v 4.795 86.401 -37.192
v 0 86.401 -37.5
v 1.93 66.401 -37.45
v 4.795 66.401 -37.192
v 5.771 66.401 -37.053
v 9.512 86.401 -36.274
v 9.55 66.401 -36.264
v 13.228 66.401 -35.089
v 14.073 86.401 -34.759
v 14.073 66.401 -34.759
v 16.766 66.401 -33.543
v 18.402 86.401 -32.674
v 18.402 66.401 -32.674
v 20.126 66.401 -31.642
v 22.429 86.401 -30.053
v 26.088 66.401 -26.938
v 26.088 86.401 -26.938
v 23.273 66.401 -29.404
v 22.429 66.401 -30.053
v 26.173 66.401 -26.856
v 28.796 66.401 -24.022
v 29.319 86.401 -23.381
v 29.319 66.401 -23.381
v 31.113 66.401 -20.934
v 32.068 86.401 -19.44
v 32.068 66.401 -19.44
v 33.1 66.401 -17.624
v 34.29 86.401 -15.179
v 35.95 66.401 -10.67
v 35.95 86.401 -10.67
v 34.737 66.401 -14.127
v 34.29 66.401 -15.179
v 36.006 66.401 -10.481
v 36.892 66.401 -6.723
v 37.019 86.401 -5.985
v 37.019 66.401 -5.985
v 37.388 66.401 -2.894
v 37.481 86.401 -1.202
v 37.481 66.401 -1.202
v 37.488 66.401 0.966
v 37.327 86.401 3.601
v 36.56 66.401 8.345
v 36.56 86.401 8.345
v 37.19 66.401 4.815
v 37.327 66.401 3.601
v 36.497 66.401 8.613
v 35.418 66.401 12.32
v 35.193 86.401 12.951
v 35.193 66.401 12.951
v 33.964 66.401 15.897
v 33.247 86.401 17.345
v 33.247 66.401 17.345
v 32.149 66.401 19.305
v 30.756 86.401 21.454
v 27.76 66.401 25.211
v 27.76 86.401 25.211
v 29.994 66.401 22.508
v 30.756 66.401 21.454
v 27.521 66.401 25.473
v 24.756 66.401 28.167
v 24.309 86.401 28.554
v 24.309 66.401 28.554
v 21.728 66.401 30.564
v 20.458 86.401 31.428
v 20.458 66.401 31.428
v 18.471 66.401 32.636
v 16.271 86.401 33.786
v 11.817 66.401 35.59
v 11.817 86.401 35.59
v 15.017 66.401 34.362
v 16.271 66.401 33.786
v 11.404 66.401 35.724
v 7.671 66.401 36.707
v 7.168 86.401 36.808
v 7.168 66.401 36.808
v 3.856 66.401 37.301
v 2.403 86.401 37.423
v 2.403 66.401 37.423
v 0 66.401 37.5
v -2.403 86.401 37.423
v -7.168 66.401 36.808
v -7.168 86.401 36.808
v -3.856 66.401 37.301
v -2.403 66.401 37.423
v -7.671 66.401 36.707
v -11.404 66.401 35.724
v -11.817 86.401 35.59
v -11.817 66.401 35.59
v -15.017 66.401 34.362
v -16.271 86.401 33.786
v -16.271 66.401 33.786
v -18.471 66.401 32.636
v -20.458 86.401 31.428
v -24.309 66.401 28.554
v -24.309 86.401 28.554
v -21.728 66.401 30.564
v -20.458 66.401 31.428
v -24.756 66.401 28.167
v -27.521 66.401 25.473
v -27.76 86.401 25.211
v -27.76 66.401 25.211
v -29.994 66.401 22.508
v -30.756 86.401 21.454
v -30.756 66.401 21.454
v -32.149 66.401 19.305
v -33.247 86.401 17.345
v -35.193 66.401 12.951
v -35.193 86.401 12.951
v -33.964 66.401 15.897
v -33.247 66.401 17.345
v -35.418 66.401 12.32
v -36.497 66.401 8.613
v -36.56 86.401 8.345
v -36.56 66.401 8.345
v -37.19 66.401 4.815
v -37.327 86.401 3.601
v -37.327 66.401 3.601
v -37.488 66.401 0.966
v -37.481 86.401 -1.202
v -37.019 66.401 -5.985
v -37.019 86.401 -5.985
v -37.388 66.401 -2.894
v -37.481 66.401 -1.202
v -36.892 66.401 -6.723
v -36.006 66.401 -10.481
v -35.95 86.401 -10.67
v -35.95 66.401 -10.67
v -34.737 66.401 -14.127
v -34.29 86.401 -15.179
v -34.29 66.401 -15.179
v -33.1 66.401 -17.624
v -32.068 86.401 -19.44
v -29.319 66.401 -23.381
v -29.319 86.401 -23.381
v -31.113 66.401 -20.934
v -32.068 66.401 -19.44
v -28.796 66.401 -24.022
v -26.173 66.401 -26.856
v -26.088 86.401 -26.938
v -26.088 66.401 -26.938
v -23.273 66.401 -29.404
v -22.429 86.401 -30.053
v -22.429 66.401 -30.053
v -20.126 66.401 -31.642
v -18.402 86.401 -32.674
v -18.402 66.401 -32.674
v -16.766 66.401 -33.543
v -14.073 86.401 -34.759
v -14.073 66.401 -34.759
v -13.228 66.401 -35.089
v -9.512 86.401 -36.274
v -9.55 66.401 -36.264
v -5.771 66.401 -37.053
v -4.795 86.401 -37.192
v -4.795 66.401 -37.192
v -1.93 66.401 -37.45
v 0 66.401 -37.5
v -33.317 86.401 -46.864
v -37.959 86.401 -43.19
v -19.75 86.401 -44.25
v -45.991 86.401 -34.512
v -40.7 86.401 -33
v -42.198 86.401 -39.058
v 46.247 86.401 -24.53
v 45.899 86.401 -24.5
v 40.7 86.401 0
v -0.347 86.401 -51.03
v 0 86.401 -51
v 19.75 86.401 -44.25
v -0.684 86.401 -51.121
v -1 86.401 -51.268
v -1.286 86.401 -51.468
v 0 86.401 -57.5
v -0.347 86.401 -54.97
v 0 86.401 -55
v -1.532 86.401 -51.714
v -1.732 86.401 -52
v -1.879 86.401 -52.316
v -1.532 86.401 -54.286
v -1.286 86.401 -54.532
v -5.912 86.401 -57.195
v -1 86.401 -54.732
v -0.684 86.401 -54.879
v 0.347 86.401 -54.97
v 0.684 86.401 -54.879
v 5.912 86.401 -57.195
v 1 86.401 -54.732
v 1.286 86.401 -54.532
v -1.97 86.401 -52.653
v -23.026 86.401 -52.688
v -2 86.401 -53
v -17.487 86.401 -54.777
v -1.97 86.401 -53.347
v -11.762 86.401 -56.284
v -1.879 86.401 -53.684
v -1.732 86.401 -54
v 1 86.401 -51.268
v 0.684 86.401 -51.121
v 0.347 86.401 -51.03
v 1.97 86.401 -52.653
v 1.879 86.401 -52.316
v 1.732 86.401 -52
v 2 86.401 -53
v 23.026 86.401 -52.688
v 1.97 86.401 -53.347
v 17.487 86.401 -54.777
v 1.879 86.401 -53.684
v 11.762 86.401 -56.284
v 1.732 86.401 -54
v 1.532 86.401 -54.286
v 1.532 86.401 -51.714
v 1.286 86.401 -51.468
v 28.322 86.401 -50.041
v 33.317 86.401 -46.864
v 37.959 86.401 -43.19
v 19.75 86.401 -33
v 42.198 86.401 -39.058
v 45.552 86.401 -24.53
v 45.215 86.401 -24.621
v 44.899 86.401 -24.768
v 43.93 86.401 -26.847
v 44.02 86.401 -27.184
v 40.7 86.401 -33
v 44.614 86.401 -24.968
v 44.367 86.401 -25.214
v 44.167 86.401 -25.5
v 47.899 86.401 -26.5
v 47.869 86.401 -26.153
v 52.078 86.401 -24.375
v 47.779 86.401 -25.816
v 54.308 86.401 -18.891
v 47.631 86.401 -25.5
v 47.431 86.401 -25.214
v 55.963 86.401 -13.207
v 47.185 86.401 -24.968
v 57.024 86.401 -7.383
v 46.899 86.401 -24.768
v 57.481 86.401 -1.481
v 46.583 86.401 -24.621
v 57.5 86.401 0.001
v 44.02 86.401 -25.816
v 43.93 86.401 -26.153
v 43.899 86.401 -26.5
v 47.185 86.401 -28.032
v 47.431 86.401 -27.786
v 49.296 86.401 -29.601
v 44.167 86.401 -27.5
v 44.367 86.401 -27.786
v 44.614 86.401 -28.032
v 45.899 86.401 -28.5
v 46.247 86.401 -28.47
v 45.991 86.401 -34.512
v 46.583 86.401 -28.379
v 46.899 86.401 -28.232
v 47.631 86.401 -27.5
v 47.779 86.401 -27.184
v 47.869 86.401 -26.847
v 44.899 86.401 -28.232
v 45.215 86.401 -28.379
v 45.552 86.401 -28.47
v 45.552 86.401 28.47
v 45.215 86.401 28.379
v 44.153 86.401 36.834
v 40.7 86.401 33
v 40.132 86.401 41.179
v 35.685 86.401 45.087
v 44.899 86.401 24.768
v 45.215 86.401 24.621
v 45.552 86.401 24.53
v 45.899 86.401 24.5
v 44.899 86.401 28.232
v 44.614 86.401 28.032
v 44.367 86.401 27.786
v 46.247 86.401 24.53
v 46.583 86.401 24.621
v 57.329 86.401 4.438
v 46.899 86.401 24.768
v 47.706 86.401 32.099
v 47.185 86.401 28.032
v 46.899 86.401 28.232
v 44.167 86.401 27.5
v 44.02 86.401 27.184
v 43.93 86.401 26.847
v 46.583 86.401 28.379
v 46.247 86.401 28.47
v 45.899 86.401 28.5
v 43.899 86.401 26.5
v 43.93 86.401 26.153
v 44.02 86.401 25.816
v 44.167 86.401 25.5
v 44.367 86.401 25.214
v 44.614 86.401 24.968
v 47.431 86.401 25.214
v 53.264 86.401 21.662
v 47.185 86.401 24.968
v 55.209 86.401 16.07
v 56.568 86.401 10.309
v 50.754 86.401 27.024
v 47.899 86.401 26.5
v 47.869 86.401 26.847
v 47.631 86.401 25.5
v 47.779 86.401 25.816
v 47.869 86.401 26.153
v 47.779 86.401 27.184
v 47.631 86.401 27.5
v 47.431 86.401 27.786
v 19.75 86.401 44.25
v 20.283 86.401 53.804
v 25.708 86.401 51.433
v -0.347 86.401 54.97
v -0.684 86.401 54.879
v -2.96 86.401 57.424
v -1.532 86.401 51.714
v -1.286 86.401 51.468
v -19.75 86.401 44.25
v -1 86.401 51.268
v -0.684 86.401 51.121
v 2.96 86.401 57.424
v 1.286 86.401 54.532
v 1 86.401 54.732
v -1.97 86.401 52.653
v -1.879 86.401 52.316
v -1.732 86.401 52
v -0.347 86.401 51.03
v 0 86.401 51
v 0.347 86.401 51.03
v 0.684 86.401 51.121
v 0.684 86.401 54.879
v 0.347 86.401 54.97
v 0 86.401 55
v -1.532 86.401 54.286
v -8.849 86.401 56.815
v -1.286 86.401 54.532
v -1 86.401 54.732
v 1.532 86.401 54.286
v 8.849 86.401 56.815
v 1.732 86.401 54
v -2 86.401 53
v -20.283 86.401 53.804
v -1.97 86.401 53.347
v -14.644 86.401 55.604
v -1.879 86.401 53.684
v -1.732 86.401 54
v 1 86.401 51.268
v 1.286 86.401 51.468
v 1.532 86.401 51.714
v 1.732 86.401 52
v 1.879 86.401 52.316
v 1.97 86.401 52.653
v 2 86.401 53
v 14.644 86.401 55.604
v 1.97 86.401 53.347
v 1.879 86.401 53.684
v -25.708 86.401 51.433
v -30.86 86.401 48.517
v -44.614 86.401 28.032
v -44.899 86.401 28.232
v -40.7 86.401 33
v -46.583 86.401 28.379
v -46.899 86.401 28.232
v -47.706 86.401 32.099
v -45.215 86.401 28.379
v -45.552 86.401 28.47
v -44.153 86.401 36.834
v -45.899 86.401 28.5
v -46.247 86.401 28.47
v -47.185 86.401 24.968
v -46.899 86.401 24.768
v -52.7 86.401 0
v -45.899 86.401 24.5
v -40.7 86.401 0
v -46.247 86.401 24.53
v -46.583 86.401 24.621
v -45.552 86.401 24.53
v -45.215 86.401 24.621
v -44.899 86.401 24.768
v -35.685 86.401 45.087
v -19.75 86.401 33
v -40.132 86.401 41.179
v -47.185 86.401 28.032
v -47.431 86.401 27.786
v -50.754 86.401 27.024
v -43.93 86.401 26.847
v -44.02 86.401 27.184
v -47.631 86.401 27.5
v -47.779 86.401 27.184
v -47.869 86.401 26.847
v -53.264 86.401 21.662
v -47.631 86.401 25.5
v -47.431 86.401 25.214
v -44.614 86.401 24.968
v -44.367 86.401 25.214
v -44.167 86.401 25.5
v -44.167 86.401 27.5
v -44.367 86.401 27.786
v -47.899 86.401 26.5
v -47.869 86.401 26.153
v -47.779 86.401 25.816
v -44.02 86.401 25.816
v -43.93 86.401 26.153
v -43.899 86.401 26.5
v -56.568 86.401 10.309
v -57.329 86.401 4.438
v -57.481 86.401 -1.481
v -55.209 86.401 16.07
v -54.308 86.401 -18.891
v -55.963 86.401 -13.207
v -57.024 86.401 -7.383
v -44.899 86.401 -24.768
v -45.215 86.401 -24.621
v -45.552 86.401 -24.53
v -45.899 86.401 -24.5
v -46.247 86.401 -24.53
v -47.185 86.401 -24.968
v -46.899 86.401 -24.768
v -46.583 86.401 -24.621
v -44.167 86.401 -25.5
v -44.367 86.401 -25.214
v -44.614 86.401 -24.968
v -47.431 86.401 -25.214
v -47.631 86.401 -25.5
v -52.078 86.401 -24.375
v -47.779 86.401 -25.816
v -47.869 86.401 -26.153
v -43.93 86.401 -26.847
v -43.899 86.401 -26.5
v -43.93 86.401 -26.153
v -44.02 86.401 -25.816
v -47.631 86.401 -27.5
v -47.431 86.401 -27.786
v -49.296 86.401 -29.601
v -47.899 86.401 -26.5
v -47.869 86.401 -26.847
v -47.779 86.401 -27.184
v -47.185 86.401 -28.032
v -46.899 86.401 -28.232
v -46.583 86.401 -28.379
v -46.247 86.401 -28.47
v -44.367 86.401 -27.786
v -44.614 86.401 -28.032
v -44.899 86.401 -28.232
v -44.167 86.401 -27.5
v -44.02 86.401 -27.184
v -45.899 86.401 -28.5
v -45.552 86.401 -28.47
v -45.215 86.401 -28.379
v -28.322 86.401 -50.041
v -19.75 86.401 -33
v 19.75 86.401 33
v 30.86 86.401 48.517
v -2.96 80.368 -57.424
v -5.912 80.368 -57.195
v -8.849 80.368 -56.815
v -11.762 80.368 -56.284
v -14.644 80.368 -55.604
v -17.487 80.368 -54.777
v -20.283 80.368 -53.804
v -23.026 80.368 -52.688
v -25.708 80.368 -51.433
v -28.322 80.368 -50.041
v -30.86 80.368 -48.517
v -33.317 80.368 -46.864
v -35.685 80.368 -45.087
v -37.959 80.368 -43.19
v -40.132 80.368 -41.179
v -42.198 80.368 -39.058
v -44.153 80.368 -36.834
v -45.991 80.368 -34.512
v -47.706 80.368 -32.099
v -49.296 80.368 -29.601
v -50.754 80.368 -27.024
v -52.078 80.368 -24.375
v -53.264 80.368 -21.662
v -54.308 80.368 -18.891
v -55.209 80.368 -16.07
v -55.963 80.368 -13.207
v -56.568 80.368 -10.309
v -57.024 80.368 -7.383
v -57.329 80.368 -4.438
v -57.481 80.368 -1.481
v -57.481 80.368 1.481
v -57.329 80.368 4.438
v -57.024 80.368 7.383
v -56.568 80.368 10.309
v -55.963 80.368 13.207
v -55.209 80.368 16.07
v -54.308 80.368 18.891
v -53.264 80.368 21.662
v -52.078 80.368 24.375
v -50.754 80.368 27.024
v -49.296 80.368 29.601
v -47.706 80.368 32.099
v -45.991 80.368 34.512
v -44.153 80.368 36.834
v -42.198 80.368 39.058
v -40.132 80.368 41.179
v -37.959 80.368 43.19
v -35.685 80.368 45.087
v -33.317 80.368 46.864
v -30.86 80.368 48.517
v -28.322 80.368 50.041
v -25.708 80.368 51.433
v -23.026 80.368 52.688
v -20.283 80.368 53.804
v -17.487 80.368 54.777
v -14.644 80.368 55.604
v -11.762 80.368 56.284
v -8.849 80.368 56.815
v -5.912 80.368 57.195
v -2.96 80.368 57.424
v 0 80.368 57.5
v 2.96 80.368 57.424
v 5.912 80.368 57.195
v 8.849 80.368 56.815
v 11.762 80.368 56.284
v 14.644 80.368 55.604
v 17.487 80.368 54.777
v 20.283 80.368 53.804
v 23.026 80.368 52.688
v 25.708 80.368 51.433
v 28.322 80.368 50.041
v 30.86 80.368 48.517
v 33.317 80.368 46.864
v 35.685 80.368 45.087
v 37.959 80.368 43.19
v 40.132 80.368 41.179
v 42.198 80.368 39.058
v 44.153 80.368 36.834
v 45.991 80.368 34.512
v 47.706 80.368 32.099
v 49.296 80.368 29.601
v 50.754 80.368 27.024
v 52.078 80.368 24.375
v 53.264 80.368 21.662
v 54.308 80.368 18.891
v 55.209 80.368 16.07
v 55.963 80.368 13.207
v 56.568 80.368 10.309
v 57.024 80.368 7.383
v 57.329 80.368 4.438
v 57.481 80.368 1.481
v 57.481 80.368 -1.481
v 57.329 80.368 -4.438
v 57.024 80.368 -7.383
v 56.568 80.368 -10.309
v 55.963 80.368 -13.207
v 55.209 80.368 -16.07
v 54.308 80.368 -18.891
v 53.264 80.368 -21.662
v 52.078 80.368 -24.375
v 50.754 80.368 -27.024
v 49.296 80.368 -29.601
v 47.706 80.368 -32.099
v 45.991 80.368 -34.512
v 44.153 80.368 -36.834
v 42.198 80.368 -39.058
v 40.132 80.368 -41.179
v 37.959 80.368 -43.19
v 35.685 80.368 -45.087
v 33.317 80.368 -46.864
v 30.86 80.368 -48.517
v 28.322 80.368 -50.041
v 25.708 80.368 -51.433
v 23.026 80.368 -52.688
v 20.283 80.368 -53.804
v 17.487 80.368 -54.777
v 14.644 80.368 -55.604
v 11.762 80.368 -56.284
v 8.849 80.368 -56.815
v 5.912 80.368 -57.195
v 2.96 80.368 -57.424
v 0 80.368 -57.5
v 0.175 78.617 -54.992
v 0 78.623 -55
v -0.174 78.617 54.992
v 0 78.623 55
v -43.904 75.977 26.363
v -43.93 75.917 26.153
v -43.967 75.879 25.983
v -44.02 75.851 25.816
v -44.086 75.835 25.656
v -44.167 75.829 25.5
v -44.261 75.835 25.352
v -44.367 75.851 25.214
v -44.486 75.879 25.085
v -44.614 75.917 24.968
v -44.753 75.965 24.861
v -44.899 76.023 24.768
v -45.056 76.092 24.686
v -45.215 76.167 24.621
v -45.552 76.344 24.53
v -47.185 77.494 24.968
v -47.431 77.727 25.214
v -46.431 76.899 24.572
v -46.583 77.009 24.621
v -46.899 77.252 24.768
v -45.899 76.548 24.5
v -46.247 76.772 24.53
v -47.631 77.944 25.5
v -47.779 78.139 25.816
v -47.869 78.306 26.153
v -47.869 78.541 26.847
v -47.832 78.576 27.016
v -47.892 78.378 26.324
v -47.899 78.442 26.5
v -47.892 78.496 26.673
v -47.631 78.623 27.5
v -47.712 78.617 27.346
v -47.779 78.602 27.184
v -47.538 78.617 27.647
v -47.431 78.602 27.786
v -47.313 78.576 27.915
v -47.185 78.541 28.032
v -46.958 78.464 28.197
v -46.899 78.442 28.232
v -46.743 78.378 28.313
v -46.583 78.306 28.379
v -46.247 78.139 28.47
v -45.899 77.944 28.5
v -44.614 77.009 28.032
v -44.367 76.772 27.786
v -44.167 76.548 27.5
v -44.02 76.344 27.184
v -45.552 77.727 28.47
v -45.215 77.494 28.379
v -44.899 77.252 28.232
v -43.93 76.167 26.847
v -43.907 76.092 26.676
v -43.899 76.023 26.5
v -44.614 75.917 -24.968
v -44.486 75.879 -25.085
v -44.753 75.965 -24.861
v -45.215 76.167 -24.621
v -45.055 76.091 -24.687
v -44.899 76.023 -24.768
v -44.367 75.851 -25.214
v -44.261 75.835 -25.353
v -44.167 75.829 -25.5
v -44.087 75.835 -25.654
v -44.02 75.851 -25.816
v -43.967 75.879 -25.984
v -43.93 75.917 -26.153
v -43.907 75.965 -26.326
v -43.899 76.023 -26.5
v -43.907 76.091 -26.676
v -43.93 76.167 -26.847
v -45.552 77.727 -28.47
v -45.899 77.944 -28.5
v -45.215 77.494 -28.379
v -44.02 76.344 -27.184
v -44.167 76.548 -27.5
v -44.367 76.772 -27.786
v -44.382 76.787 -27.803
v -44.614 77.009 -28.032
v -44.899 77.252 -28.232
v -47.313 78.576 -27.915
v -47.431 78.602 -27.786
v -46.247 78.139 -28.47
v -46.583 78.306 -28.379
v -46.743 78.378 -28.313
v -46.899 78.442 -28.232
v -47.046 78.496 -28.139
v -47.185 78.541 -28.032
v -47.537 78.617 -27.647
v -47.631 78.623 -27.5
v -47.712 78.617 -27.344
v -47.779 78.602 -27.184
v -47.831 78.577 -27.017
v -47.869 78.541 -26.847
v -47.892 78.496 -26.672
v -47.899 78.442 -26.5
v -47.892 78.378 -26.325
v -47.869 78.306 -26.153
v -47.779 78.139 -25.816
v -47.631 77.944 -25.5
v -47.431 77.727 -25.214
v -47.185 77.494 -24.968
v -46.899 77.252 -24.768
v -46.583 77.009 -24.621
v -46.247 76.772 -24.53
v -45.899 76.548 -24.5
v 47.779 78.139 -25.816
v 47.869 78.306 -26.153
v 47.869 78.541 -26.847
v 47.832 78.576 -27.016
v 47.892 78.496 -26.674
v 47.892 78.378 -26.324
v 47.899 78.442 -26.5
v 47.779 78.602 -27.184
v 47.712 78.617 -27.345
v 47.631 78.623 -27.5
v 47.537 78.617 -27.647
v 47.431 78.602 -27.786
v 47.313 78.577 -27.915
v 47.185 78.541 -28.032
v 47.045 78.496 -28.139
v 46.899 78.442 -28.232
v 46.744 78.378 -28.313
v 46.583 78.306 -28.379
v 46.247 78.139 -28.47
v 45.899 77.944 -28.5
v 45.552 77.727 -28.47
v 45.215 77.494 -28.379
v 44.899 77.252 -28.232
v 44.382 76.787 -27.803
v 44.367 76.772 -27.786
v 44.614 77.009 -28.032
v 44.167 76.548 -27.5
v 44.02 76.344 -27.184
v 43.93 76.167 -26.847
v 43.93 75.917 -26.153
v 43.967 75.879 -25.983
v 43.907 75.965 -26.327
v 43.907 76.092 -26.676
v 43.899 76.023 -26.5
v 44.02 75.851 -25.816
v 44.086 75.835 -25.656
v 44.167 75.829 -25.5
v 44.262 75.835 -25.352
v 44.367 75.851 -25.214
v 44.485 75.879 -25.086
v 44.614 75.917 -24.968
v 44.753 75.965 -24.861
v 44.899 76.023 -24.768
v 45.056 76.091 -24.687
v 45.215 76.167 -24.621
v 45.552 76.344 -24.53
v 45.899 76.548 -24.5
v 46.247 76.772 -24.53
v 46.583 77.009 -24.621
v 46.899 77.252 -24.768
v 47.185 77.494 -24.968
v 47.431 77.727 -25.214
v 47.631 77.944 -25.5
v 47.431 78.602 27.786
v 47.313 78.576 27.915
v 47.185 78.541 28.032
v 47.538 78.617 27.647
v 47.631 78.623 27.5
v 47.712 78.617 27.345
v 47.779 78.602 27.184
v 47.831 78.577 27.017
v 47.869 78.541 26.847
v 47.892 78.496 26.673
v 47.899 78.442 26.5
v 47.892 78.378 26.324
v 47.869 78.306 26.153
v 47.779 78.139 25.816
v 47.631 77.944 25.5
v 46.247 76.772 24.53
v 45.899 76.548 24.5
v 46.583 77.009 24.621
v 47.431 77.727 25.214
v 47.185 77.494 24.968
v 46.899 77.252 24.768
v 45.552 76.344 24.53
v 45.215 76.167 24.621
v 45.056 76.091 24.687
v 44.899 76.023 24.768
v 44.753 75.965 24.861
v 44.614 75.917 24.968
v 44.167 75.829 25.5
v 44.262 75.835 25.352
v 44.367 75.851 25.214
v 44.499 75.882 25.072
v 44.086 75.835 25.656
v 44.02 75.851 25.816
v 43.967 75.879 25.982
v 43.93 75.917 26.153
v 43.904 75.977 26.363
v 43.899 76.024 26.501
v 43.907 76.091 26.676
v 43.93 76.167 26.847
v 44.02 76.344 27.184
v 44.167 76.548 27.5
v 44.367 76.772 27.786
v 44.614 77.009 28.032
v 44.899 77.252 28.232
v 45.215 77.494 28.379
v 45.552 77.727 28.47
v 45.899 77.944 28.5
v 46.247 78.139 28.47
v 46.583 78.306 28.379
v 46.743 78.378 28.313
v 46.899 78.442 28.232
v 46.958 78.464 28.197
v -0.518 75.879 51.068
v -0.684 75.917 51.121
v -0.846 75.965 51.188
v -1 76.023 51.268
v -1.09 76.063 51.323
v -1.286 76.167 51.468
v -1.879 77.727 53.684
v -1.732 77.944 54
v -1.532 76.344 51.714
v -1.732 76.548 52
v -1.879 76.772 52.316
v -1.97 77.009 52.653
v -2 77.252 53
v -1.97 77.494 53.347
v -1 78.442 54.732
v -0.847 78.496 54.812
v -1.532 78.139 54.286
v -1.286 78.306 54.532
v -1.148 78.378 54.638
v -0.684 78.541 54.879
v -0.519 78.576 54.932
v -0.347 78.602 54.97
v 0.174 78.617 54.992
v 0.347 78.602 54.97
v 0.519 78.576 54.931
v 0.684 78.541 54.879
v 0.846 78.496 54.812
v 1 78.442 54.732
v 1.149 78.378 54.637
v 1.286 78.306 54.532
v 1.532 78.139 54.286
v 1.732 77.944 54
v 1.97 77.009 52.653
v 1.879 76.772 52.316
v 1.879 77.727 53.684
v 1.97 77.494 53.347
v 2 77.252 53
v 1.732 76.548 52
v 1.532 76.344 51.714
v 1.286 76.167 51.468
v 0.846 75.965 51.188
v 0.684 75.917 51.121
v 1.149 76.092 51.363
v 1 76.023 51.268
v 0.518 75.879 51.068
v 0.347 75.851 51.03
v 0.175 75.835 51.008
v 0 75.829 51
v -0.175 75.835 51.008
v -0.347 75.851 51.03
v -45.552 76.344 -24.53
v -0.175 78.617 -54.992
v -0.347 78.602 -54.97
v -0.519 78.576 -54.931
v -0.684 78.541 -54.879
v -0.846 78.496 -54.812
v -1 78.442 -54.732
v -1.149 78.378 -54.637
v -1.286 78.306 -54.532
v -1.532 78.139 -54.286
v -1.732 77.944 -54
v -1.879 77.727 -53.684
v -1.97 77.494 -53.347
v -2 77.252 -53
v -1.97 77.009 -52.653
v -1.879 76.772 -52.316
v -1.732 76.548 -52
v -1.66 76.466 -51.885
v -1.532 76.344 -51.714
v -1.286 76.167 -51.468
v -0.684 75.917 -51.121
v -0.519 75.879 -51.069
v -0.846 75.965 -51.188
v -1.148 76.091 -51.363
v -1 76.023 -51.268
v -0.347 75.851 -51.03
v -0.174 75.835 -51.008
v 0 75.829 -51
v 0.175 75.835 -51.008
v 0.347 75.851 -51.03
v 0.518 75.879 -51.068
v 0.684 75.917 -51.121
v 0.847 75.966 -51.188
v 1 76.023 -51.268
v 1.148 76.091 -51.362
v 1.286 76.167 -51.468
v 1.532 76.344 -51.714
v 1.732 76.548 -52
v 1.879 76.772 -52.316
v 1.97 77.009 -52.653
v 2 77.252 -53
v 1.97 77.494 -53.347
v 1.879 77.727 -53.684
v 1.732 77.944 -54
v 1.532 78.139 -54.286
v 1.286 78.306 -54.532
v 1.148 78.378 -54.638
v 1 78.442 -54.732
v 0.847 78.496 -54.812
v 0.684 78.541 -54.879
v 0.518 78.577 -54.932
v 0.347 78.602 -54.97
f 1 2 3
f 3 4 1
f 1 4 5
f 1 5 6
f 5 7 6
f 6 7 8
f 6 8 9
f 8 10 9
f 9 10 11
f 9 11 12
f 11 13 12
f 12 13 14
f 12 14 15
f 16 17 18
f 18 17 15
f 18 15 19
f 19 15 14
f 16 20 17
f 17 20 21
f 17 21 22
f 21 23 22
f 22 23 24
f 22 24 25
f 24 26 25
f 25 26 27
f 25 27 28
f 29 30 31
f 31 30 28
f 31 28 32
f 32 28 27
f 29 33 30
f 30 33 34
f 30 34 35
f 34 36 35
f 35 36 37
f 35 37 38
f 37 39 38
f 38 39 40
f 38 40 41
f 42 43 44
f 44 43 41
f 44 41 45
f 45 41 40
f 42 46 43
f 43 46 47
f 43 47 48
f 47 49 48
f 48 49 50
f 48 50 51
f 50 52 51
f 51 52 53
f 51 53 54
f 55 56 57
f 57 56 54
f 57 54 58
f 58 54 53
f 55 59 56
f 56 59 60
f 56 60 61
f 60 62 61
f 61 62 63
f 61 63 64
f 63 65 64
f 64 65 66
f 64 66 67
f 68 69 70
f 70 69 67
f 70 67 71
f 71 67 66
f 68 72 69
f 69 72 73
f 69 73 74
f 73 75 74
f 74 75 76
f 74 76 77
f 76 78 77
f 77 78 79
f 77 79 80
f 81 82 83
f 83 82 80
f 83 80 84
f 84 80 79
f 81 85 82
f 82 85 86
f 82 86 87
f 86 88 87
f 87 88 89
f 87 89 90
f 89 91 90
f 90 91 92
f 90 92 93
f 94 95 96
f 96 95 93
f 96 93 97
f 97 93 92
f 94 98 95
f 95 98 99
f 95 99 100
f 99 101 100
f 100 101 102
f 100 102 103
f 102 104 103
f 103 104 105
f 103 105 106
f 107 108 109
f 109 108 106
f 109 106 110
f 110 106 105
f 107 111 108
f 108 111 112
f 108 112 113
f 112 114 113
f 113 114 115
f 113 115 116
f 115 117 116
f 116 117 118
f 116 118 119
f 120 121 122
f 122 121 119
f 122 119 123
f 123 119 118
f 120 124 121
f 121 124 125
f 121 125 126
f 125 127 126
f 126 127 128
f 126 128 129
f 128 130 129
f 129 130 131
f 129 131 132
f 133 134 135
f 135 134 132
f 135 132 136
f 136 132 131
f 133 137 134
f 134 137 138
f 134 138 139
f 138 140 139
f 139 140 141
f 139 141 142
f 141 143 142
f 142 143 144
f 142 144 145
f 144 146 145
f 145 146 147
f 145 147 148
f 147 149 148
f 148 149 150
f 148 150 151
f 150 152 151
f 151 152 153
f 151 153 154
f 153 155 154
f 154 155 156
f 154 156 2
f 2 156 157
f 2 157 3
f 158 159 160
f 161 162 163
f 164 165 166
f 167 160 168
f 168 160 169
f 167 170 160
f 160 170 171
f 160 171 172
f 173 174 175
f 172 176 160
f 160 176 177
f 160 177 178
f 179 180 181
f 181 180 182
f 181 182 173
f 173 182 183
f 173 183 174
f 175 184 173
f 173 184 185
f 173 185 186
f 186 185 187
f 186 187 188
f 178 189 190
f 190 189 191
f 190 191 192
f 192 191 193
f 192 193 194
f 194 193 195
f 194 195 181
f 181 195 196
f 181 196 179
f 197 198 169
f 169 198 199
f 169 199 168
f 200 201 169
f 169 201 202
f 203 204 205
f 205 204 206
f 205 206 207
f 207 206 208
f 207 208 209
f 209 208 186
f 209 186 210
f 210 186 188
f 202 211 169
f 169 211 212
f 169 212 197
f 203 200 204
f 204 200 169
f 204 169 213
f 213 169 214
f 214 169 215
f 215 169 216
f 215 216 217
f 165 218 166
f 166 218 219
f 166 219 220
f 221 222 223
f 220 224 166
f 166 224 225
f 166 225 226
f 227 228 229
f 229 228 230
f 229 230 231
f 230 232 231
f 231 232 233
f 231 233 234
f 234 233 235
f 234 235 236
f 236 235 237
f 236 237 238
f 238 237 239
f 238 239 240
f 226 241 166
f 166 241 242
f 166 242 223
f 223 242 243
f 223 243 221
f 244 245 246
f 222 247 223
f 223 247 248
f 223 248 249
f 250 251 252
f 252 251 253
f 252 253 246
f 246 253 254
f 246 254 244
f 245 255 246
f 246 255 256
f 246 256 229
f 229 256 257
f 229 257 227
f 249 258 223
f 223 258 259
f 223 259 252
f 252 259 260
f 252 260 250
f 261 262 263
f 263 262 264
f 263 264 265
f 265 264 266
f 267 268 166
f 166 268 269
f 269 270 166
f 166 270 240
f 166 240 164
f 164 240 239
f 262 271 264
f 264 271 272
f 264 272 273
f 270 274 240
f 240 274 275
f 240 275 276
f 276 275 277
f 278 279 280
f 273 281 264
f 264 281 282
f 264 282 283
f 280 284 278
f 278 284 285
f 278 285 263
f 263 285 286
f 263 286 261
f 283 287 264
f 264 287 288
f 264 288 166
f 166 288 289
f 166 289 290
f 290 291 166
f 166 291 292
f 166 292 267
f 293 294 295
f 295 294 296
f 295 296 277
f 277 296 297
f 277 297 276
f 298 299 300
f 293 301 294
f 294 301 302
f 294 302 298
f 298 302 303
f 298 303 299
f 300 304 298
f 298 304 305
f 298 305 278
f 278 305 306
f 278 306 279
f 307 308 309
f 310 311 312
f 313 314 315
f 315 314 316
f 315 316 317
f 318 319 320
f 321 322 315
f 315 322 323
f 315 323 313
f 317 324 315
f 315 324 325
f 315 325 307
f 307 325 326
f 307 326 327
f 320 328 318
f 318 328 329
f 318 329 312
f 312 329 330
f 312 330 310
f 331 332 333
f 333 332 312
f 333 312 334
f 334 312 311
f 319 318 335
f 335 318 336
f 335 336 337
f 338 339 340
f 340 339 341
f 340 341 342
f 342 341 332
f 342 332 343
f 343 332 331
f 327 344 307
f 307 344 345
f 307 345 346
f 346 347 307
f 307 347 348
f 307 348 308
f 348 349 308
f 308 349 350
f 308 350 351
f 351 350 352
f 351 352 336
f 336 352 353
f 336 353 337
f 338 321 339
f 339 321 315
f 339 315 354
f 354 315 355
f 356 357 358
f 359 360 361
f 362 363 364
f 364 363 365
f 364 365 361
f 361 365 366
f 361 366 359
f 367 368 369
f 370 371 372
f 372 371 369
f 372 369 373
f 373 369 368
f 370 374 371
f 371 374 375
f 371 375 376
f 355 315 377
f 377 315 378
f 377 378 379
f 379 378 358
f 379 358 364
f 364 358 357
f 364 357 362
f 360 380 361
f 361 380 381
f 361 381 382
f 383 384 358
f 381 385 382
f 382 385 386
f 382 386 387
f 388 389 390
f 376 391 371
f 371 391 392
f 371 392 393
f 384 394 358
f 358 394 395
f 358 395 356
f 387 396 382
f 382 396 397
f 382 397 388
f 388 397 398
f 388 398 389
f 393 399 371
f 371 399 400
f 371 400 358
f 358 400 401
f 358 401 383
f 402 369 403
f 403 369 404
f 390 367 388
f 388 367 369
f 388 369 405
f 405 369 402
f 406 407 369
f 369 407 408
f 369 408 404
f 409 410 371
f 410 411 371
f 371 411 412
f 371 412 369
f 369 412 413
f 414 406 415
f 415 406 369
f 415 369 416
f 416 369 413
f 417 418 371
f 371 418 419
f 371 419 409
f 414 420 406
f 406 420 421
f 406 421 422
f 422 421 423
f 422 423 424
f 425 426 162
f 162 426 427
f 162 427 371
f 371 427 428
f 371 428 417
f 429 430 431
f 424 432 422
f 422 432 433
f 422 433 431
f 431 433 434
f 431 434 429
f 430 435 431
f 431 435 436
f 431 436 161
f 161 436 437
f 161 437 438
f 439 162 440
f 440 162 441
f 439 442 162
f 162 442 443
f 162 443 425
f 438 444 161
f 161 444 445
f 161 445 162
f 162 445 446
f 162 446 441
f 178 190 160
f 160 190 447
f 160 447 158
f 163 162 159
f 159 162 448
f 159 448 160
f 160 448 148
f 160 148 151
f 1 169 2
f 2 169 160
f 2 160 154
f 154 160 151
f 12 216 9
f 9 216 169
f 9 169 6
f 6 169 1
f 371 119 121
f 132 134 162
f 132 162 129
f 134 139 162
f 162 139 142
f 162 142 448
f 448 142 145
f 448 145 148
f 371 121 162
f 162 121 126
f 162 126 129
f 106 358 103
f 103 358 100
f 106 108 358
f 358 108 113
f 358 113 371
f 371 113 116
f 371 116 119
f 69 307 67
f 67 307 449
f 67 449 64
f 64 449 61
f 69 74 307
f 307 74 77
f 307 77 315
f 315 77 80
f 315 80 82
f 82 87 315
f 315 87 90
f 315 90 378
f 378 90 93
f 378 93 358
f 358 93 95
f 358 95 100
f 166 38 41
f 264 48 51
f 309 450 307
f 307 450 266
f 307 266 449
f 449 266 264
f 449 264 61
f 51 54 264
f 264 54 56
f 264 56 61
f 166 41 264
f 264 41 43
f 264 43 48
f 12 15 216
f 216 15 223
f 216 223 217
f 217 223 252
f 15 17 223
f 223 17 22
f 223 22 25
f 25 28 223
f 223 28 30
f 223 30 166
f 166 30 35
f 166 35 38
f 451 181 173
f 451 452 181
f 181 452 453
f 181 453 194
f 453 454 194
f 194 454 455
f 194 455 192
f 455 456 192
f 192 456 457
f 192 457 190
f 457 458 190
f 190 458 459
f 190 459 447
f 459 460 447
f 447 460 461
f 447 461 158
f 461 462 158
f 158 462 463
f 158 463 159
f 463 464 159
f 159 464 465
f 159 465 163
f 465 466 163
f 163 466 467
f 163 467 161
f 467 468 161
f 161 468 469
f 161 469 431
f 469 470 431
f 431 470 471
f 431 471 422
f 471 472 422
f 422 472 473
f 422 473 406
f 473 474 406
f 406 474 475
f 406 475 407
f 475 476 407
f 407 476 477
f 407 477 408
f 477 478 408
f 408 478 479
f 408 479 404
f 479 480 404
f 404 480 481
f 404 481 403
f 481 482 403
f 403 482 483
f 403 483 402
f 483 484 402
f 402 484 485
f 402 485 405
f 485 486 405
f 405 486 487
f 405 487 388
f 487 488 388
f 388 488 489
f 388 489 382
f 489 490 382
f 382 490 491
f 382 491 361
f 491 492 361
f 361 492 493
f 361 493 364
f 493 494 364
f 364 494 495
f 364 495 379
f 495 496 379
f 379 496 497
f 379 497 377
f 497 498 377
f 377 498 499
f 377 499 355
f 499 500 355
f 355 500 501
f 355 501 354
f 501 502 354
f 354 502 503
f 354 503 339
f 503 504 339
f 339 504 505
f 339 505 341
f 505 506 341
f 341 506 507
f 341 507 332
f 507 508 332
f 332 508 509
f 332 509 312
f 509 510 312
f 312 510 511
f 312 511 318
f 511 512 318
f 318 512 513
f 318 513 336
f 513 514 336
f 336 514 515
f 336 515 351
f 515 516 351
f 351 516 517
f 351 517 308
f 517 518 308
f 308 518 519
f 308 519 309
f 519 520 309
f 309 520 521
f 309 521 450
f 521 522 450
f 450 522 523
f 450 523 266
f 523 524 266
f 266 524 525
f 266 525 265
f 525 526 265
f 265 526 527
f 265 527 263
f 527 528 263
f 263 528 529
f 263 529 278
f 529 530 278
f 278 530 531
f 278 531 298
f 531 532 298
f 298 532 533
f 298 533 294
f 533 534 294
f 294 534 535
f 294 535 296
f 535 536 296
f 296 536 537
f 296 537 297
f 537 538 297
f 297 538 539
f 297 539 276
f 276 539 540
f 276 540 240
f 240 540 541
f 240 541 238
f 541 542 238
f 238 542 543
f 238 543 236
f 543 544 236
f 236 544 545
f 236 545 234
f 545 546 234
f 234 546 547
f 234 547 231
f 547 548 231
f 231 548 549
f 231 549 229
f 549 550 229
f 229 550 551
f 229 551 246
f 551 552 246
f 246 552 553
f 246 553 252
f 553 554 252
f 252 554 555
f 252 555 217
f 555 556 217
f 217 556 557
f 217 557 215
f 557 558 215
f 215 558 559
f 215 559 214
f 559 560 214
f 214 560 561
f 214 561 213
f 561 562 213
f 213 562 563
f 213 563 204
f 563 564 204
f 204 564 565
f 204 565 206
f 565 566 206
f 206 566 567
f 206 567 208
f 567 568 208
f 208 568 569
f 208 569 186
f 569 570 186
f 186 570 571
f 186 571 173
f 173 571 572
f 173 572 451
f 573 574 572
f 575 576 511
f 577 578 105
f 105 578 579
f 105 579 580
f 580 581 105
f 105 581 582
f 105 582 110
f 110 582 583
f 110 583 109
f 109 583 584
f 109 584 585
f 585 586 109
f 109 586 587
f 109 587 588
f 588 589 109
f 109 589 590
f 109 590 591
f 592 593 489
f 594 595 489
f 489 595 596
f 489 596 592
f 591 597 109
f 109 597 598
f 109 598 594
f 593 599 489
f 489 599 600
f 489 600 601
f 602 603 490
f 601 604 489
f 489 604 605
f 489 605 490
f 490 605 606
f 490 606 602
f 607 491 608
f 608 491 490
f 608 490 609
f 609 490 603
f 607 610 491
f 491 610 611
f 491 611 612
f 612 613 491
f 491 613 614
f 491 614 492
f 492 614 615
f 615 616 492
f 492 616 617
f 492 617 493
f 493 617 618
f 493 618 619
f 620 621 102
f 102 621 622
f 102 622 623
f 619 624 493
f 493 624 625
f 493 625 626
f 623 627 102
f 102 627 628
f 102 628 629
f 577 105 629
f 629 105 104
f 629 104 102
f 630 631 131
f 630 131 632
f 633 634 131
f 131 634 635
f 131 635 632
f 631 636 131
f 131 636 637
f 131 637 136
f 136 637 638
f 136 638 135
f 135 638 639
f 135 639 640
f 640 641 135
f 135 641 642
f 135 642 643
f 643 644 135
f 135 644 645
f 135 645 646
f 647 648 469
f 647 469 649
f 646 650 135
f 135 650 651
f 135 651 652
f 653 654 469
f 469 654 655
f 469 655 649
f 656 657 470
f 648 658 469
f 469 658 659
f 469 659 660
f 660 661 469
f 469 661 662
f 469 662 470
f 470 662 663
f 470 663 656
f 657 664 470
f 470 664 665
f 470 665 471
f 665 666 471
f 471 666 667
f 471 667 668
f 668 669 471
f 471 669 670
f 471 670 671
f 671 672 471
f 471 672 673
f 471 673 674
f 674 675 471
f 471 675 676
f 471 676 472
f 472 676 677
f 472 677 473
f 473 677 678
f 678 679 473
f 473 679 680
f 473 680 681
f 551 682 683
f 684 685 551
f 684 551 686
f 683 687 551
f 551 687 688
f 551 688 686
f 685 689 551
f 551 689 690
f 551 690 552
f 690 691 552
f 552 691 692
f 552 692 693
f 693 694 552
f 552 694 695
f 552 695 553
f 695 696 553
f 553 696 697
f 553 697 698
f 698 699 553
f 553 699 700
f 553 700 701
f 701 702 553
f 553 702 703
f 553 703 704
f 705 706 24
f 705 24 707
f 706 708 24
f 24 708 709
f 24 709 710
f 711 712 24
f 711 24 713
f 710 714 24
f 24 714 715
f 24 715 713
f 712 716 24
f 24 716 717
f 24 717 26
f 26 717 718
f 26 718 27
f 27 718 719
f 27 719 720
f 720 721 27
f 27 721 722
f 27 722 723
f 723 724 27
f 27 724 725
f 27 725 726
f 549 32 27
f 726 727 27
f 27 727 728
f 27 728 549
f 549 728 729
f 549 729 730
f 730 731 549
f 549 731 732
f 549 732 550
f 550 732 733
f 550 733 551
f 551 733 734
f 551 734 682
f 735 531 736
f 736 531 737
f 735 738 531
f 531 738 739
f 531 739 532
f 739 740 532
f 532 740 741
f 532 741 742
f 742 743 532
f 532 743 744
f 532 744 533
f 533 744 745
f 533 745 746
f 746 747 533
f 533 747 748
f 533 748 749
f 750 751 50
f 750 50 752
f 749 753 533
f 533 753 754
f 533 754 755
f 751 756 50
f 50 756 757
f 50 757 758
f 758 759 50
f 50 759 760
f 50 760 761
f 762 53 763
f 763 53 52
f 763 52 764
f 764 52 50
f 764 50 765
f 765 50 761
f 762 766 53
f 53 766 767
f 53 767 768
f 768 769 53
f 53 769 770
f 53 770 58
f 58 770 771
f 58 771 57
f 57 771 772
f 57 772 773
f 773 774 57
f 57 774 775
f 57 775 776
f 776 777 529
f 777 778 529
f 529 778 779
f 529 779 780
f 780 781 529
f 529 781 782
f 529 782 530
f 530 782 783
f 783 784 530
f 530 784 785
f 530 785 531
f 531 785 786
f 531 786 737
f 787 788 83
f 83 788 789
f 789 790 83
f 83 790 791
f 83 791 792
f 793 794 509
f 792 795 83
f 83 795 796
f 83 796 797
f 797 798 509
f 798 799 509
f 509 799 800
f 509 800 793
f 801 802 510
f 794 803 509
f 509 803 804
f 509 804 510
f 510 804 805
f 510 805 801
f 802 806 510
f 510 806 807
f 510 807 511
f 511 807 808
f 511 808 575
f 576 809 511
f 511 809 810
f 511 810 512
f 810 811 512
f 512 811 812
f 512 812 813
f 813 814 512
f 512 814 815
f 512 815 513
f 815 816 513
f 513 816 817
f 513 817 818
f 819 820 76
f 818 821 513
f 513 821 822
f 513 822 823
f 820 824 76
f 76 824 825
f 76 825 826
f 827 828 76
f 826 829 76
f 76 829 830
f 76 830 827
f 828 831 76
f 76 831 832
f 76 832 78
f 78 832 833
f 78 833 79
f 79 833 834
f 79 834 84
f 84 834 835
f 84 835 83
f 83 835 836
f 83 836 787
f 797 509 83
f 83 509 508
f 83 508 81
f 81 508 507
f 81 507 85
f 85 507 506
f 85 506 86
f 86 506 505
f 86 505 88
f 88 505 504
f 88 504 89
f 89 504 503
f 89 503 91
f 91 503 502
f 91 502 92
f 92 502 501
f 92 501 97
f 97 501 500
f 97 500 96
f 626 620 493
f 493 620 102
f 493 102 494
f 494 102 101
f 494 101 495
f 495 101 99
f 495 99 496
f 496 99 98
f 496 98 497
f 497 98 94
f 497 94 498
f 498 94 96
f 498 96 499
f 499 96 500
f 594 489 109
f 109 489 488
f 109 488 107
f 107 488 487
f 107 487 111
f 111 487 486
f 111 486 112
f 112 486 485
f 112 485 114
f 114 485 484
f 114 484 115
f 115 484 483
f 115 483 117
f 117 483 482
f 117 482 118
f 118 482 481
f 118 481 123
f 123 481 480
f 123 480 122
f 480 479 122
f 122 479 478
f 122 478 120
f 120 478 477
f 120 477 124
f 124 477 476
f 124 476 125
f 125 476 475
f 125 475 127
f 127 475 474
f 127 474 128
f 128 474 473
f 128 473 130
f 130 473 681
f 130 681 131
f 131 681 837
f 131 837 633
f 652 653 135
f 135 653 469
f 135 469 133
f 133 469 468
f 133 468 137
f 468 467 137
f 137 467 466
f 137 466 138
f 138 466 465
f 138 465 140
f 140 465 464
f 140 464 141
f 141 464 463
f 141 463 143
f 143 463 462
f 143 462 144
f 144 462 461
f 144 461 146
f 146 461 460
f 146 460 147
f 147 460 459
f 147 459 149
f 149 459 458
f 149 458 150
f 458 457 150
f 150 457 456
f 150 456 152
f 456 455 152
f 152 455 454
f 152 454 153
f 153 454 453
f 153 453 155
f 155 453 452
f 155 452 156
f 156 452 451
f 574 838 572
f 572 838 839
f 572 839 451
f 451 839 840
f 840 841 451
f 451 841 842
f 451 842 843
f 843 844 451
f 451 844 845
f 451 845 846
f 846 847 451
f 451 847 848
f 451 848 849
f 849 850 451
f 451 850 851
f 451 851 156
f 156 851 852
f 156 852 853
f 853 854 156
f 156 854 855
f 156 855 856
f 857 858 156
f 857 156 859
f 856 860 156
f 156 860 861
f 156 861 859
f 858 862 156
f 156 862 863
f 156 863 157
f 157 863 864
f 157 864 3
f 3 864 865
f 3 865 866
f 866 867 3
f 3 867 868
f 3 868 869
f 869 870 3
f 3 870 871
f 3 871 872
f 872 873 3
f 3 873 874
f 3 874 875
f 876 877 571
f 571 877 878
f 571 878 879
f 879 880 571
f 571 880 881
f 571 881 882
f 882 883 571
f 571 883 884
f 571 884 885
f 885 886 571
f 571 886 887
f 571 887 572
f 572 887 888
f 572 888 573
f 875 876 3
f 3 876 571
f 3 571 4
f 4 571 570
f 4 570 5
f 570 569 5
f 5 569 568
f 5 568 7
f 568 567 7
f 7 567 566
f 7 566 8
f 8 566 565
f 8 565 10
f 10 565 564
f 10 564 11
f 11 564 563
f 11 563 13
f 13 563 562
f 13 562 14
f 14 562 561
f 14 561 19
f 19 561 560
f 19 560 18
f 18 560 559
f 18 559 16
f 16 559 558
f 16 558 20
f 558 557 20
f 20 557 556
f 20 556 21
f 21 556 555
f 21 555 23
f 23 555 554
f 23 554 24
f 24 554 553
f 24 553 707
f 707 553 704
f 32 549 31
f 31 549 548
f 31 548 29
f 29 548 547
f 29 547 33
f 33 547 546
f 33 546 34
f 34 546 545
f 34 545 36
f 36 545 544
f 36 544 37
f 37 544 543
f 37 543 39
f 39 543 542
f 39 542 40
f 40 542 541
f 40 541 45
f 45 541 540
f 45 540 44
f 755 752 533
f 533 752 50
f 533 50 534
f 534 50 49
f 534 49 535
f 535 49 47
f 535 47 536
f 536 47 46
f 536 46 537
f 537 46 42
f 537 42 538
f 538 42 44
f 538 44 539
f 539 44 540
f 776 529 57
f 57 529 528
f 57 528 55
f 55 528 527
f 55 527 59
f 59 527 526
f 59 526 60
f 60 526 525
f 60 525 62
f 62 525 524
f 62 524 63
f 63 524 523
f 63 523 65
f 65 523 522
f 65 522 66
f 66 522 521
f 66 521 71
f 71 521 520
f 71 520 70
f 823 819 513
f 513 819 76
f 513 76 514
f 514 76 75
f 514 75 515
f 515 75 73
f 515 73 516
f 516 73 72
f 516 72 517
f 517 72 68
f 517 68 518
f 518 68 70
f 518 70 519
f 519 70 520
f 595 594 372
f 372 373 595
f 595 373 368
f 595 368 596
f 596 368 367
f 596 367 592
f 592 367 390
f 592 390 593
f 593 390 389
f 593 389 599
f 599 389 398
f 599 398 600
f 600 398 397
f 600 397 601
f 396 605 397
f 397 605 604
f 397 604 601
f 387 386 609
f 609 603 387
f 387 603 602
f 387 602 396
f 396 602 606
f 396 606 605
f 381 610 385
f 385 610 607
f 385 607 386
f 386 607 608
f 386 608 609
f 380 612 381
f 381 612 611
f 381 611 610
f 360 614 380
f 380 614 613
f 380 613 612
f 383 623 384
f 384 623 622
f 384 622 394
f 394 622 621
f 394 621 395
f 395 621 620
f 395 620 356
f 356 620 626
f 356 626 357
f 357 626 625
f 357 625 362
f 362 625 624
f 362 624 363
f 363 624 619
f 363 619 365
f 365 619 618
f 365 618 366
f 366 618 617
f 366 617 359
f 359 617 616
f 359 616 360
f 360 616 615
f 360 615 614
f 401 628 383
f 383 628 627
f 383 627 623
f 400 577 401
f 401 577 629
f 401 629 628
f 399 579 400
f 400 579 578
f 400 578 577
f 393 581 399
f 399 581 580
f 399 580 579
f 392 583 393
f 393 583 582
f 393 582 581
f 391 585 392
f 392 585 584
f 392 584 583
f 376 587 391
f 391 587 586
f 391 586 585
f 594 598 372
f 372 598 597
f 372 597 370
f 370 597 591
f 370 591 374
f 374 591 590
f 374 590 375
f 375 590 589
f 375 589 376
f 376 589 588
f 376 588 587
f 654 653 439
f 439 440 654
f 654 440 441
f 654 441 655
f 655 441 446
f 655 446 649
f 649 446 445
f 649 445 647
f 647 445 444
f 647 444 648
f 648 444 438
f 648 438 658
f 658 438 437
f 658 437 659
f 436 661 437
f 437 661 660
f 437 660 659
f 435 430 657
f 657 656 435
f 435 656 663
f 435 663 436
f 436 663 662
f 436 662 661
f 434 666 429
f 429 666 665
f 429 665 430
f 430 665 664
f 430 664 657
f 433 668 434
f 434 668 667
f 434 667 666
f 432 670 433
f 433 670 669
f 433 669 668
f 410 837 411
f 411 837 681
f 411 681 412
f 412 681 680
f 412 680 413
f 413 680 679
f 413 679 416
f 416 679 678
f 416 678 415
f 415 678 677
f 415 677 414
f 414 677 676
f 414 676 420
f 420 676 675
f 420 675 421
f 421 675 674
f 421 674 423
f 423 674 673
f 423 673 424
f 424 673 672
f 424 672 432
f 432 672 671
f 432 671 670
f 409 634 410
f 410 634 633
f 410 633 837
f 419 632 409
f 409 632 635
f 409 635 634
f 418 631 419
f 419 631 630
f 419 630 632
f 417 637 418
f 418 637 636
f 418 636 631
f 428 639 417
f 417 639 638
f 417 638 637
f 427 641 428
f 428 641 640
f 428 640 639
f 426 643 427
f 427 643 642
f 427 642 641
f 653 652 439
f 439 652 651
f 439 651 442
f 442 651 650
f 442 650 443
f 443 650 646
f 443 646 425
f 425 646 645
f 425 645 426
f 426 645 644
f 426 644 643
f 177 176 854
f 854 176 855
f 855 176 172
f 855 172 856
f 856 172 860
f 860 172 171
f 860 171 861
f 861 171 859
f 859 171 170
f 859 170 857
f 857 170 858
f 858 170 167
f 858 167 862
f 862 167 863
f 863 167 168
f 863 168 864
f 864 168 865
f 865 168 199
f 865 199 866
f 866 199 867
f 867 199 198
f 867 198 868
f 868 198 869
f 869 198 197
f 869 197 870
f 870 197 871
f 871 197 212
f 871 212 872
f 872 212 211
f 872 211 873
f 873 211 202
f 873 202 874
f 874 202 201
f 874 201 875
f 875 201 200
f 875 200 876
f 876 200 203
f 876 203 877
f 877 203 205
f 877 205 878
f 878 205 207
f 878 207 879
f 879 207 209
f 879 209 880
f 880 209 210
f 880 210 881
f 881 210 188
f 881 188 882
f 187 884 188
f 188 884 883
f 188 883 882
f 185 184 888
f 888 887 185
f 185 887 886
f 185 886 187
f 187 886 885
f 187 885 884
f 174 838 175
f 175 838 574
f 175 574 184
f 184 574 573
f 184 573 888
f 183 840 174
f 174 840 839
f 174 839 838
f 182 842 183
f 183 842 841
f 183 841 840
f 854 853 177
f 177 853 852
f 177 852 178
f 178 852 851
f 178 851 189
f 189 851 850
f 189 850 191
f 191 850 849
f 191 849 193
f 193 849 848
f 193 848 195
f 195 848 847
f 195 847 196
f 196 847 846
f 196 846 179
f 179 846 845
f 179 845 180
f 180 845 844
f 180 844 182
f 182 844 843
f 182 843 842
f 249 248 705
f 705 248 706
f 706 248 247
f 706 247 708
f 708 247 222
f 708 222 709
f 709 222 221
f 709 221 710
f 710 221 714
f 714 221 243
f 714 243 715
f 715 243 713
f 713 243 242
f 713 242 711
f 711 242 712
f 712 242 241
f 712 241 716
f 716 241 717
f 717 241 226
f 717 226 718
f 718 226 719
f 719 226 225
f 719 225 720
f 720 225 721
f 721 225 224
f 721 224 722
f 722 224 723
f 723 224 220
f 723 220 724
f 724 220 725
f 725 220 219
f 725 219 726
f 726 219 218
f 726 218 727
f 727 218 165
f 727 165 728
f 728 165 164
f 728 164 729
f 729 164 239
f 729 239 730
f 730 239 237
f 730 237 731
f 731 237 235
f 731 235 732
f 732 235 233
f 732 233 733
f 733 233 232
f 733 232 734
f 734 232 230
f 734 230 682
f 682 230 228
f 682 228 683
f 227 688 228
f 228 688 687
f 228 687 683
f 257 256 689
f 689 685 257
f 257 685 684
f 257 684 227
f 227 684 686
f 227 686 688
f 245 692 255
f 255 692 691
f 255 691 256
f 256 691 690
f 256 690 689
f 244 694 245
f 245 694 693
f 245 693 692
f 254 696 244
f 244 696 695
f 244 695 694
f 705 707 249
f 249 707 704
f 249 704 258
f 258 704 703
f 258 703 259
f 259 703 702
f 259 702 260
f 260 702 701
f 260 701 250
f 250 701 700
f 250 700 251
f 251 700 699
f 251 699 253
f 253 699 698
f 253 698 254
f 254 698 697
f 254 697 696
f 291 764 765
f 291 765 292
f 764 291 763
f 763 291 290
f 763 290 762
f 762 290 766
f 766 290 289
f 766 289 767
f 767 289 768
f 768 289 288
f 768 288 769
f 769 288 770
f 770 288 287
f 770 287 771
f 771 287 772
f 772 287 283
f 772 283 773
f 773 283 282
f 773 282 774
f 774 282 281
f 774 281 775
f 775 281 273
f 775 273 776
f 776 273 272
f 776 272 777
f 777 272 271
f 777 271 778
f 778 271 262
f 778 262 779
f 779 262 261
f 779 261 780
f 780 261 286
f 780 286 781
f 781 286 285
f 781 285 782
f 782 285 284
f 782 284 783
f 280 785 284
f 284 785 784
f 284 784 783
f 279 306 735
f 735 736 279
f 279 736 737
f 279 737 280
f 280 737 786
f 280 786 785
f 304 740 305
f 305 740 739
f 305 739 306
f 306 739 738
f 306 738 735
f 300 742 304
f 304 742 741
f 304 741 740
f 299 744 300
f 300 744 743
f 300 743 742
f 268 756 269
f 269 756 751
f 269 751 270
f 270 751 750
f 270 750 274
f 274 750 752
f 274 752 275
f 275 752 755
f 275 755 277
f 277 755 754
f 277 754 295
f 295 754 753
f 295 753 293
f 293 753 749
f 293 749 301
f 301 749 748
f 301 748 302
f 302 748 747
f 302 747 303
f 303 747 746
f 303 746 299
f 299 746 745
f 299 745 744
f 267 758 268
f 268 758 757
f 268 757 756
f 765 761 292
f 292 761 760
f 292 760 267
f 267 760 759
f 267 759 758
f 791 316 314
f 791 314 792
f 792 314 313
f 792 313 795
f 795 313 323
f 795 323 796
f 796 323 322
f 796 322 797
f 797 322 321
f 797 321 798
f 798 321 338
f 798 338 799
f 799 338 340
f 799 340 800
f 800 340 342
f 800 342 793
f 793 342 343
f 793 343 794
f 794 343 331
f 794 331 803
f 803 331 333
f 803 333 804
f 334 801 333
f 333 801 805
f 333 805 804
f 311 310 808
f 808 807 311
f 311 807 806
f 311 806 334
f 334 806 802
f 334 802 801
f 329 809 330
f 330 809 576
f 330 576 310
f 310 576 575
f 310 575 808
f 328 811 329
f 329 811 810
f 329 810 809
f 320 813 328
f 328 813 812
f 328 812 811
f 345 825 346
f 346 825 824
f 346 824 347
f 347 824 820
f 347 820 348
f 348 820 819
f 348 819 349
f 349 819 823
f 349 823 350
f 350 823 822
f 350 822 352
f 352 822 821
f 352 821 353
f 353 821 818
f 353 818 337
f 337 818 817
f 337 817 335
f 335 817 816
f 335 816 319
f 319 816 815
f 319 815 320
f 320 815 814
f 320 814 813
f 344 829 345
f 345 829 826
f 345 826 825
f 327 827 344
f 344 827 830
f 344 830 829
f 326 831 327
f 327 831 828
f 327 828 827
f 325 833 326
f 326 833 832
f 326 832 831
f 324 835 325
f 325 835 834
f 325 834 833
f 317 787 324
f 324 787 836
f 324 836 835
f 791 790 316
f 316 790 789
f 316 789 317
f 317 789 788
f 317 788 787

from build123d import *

# Parameters (mm, degrees)
SKETCH2_R          = 2
CUT_EXTRUDE1_DEPTH = 84.740671122


with BuildPart() as part:
    # Sketch1 → Revolve1 (revolve)
    with BuildSketch(Plane(origin=(0, 0, 0), x_dir=(0, 0, -1), z_dir=(1, 0, 0))):
        Polygon((37.5, 66.401492208), (57.5, 80.368434357), (57.5, 86.401492208), (37.5, 86.401492208), align=None)
    revolve(axis=Axis((0, 0, 0), (0, 1, 0)))

    # Sketch2 → Cut-Extrude1 (cut, through all)
    with BuildSketch(Plane(origin=(0, 86.401492208, 0), x_dir=(1, 0, 0), z_dir=(0, 1, 0))):
        with Locations(Location((0, -53, 0), (0, 0, 270))):
            Circle(SKETCH2_R)
        with Locations(Location((-45.899346401, -26.5, 0), (0, 0, 270))):
            Circle(SKETCH2_R)
        with Locations(Location((-45.899346401, 26.5, 0), (0, 0, 270))):
            Circle(SKETCH2_R)
        with Locations(Location((0, 53, 0), (0, 0, 270))):
            Circle(SKETCH2_R)
        with Locations(Location((45.899346401, 26.5, 0), (0, 0, 270))):
            Circle(SKETCH2_R)
        with Locations(Location((45.899346401, -26.5, 0), (0, 0, 270))):
            Circle(SKETCH2_R)
    extrude(amount=-CUT_EXTRUDE1_DEPTH, mode=Mode.SUBTRACT)


solid = part.part
